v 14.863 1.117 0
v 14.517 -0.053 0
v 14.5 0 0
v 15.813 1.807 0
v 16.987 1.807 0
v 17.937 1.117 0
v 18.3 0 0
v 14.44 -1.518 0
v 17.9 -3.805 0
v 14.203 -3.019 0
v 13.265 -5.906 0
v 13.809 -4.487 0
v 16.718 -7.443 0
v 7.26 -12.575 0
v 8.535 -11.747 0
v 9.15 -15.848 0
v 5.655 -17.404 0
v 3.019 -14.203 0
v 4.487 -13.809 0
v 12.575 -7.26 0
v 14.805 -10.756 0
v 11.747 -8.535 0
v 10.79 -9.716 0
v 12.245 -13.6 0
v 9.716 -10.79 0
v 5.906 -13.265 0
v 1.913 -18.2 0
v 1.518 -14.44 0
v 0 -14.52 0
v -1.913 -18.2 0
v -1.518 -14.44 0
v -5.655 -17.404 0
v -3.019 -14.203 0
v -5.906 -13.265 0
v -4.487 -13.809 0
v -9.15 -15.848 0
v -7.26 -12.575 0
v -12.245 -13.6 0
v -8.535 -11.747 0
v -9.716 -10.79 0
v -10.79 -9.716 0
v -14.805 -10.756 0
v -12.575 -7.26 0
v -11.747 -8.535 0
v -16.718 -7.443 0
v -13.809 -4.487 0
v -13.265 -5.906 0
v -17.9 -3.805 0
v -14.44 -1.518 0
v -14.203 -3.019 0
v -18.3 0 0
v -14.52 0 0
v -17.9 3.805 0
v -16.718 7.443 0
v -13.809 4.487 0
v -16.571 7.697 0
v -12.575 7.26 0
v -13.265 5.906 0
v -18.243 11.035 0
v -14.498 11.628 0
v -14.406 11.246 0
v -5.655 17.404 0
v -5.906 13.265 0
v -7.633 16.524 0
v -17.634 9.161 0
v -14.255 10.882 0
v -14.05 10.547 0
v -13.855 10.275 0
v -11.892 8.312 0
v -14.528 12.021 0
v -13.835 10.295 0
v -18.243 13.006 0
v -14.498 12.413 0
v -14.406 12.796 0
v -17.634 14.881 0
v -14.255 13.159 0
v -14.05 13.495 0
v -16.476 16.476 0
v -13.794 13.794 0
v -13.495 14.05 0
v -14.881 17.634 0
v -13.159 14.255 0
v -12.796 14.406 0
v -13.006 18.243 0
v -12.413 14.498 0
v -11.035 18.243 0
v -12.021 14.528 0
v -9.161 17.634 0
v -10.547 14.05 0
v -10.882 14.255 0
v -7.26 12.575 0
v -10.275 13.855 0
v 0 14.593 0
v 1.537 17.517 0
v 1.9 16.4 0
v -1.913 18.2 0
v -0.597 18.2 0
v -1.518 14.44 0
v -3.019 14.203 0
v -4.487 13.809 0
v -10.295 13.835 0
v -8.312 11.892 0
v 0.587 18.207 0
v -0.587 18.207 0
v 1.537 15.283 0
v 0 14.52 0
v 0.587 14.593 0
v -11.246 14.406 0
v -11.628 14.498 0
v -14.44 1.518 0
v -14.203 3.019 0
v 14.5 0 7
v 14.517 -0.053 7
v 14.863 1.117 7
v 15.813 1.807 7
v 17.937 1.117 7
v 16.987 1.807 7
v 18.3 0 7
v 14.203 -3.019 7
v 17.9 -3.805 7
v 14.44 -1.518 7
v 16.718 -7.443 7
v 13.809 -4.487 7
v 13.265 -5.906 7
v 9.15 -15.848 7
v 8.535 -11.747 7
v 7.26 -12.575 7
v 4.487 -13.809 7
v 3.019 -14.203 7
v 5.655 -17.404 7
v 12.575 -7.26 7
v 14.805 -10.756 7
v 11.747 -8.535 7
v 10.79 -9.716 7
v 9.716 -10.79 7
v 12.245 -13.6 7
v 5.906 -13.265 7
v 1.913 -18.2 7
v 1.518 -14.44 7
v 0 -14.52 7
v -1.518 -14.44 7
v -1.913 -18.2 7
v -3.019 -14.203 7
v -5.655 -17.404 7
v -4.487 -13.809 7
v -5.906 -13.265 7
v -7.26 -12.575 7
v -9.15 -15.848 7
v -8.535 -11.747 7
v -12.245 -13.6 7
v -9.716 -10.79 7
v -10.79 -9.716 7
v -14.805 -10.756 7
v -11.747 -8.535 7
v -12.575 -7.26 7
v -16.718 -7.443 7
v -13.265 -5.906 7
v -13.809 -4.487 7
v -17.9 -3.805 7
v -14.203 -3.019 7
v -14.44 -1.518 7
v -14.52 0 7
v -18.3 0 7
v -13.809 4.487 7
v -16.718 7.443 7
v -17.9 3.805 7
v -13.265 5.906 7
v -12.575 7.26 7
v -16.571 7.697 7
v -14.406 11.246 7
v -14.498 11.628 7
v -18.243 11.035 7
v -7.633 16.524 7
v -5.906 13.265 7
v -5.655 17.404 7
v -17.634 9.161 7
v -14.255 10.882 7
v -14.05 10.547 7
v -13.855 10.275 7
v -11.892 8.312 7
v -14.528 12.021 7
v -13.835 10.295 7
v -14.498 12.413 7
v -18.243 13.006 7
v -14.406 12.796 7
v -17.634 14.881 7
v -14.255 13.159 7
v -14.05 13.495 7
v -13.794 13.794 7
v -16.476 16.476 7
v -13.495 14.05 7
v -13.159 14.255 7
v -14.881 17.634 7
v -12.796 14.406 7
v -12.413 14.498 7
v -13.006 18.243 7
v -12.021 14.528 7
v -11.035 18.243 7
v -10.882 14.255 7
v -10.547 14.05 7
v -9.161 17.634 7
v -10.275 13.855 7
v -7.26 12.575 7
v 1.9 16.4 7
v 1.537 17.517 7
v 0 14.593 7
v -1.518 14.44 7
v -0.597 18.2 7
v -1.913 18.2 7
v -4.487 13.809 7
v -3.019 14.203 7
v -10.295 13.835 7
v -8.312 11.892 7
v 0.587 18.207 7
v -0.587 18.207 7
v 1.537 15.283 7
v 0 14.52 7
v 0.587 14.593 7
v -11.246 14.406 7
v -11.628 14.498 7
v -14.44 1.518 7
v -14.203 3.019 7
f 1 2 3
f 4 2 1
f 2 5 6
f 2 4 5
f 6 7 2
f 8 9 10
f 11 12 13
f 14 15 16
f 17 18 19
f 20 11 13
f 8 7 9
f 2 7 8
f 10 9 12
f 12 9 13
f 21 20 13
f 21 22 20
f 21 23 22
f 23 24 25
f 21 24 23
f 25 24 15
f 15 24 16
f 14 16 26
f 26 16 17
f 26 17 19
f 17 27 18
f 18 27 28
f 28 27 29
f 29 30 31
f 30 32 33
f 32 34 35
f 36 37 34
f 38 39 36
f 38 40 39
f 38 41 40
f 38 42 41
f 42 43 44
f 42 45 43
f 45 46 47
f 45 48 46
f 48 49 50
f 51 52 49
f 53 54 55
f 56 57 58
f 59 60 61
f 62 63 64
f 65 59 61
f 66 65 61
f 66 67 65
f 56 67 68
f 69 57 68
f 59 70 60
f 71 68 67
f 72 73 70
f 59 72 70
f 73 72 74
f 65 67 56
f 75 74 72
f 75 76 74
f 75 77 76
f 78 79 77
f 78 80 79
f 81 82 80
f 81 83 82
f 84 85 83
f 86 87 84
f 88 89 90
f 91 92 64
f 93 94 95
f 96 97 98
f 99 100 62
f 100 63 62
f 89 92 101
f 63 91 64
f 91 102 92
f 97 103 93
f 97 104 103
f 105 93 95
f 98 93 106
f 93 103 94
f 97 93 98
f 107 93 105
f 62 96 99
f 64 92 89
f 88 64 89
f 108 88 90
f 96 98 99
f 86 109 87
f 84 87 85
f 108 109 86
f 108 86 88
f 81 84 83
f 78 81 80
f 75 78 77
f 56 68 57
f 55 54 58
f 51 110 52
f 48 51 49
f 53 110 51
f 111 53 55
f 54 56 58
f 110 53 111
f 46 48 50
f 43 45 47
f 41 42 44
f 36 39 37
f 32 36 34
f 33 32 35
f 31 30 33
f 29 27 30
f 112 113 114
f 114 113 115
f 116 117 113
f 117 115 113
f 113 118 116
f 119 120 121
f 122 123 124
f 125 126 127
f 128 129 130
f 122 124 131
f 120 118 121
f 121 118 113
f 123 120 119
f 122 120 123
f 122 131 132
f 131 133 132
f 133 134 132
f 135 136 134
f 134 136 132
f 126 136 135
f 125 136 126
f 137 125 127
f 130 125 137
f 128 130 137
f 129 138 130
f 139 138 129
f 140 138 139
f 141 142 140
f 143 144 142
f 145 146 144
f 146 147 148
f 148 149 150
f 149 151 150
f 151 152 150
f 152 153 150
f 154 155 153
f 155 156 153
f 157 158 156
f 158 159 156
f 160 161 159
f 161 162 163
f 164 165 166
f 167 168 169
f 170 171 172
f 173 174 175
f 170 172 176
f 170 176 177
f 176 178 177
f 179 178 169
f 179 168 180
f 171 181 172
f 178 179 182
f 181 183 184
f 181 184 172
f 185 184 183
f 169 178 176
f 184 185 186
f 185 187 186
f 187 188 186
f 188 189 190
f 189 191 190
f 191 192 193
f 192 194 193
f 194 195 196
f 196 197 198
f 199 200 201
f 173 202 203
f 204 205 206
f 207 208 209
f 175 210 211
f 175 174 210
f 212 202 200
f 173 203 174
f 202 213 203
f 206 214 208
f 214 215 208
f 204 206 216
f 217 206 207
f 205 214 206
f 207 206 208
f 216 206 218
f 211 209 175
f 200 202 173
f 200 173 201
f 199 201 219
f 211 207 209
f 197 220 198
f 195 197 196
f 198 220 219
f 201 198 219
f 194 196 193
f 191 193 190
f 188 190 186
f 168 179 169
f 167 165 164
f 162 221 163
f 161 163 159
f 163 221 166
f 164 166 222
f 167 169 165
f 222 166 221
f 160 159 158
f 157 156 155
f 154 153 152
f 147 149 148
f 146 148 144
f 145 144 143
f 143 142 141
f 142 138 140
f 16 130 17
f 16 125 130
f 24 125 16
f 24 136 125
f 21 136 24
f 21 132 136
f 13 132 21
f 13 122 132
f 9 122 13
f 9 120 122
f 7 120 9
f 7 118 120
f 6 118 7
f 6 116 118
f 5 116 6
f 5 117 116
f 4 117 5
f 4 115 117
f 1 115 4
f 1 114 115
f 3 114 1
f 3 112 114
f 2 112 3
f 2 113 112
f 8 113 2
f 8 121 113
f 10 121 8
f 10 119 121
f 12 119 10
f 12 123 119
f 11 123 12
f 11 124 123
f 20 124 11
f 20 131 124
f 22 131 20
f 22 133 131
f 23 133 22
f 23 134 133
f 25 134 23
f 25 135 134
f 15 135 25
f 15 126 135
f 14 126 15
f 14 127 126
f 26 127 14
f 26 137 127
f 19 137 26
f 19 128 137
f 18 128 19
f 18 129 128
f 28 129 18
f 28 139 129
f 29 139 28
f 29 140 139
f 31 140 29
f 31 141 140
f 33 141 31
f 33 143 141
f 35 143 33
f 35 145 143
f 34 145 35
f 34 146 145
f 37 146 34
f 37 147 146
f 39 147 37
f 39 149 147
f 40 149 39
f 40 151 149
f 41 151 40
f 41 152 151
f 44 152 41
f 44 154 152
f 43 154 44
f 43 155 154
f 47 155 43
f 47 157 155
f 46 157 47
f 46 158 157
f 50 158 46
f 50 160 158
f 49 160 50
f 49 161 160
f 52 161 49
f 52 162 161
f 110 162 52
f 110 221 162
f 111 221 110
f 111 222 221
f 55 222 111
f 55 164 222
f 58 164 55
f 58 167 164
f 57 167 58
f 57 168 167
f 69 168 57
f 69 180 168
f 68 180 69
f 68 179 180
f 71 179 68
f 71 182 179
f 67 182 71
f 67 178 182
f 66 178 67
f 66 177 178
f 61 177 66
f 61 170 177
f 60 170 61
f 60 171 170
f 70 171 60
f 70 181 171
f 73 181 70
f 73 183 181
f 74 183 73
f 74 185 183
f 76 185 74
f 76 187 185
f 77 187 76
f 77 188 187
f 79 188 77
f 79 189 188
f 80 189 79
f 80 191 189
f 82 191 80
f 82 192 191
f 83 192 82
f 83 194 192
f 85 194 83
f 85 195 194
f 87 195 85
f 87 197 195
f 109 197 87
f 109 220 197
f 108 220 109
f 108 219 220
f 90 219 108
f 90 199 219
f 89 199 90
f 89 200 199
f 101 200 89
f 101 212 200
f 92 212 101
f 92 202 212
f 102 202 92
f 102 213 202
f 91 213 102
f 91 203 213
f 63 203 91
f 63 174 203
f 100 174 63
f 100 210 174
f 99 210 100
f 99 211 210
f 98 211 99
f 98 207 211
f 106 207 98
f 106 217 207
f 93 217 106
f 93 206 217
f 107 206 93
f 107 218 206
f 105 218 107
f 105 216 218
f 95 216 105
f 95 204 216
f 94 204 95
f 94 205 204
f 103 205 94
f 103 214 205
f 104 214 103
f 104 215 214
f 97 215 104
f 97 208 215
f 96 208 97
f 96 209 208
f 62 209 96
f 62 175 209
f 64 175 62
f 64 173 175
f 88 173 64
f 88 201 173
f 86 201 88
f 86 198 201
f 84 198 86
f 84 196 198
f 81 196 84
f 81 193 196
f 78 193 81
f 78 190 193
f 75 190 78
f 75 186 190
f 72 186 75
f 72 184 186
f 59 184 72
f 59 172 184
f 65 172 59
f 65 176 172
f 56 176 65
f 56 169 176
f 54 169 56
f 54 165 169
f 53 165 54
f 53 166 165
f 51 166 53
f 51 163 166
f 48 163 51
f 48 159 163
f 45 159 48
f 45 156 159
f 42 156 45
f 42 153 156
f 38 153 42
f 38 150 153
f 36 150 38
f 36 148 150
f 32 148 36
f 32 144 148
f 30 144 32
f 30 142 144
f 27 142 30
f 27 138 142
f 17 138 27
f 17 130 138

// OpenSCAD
tube = 29/2;
cable = 5/2;
width = 3.8;
breadth = 7;

module circle_outer(radius,fn) {
  fudge = 1/cos(180/fn);
  circle(r=radius*fudge,$fn=fn);
}

linear_extrude(height=breadth) {
    difference() {
        union() {
            circle(r=(tube + width));
            rotate(45) translate([0, cable + tube]) circle(r=(cable + width));
        }
        circle_outer(tube, 60);
        square(tube+width);
        rotate(45) translate([0, cable + tube]) circle_outer(cable, 40);
        rotate(45) translate([0, tube - cable]) union() {
            translate([-cable/cos(180/20), 0]) square(2*cable/cos(180/20));
        }
    }

    translate([0, (tube+0.5*width)]) circle(width/2, $fn=10);
    translate([(tube+0.5*width), 0]) circle(width/2, $fn=10);
}
